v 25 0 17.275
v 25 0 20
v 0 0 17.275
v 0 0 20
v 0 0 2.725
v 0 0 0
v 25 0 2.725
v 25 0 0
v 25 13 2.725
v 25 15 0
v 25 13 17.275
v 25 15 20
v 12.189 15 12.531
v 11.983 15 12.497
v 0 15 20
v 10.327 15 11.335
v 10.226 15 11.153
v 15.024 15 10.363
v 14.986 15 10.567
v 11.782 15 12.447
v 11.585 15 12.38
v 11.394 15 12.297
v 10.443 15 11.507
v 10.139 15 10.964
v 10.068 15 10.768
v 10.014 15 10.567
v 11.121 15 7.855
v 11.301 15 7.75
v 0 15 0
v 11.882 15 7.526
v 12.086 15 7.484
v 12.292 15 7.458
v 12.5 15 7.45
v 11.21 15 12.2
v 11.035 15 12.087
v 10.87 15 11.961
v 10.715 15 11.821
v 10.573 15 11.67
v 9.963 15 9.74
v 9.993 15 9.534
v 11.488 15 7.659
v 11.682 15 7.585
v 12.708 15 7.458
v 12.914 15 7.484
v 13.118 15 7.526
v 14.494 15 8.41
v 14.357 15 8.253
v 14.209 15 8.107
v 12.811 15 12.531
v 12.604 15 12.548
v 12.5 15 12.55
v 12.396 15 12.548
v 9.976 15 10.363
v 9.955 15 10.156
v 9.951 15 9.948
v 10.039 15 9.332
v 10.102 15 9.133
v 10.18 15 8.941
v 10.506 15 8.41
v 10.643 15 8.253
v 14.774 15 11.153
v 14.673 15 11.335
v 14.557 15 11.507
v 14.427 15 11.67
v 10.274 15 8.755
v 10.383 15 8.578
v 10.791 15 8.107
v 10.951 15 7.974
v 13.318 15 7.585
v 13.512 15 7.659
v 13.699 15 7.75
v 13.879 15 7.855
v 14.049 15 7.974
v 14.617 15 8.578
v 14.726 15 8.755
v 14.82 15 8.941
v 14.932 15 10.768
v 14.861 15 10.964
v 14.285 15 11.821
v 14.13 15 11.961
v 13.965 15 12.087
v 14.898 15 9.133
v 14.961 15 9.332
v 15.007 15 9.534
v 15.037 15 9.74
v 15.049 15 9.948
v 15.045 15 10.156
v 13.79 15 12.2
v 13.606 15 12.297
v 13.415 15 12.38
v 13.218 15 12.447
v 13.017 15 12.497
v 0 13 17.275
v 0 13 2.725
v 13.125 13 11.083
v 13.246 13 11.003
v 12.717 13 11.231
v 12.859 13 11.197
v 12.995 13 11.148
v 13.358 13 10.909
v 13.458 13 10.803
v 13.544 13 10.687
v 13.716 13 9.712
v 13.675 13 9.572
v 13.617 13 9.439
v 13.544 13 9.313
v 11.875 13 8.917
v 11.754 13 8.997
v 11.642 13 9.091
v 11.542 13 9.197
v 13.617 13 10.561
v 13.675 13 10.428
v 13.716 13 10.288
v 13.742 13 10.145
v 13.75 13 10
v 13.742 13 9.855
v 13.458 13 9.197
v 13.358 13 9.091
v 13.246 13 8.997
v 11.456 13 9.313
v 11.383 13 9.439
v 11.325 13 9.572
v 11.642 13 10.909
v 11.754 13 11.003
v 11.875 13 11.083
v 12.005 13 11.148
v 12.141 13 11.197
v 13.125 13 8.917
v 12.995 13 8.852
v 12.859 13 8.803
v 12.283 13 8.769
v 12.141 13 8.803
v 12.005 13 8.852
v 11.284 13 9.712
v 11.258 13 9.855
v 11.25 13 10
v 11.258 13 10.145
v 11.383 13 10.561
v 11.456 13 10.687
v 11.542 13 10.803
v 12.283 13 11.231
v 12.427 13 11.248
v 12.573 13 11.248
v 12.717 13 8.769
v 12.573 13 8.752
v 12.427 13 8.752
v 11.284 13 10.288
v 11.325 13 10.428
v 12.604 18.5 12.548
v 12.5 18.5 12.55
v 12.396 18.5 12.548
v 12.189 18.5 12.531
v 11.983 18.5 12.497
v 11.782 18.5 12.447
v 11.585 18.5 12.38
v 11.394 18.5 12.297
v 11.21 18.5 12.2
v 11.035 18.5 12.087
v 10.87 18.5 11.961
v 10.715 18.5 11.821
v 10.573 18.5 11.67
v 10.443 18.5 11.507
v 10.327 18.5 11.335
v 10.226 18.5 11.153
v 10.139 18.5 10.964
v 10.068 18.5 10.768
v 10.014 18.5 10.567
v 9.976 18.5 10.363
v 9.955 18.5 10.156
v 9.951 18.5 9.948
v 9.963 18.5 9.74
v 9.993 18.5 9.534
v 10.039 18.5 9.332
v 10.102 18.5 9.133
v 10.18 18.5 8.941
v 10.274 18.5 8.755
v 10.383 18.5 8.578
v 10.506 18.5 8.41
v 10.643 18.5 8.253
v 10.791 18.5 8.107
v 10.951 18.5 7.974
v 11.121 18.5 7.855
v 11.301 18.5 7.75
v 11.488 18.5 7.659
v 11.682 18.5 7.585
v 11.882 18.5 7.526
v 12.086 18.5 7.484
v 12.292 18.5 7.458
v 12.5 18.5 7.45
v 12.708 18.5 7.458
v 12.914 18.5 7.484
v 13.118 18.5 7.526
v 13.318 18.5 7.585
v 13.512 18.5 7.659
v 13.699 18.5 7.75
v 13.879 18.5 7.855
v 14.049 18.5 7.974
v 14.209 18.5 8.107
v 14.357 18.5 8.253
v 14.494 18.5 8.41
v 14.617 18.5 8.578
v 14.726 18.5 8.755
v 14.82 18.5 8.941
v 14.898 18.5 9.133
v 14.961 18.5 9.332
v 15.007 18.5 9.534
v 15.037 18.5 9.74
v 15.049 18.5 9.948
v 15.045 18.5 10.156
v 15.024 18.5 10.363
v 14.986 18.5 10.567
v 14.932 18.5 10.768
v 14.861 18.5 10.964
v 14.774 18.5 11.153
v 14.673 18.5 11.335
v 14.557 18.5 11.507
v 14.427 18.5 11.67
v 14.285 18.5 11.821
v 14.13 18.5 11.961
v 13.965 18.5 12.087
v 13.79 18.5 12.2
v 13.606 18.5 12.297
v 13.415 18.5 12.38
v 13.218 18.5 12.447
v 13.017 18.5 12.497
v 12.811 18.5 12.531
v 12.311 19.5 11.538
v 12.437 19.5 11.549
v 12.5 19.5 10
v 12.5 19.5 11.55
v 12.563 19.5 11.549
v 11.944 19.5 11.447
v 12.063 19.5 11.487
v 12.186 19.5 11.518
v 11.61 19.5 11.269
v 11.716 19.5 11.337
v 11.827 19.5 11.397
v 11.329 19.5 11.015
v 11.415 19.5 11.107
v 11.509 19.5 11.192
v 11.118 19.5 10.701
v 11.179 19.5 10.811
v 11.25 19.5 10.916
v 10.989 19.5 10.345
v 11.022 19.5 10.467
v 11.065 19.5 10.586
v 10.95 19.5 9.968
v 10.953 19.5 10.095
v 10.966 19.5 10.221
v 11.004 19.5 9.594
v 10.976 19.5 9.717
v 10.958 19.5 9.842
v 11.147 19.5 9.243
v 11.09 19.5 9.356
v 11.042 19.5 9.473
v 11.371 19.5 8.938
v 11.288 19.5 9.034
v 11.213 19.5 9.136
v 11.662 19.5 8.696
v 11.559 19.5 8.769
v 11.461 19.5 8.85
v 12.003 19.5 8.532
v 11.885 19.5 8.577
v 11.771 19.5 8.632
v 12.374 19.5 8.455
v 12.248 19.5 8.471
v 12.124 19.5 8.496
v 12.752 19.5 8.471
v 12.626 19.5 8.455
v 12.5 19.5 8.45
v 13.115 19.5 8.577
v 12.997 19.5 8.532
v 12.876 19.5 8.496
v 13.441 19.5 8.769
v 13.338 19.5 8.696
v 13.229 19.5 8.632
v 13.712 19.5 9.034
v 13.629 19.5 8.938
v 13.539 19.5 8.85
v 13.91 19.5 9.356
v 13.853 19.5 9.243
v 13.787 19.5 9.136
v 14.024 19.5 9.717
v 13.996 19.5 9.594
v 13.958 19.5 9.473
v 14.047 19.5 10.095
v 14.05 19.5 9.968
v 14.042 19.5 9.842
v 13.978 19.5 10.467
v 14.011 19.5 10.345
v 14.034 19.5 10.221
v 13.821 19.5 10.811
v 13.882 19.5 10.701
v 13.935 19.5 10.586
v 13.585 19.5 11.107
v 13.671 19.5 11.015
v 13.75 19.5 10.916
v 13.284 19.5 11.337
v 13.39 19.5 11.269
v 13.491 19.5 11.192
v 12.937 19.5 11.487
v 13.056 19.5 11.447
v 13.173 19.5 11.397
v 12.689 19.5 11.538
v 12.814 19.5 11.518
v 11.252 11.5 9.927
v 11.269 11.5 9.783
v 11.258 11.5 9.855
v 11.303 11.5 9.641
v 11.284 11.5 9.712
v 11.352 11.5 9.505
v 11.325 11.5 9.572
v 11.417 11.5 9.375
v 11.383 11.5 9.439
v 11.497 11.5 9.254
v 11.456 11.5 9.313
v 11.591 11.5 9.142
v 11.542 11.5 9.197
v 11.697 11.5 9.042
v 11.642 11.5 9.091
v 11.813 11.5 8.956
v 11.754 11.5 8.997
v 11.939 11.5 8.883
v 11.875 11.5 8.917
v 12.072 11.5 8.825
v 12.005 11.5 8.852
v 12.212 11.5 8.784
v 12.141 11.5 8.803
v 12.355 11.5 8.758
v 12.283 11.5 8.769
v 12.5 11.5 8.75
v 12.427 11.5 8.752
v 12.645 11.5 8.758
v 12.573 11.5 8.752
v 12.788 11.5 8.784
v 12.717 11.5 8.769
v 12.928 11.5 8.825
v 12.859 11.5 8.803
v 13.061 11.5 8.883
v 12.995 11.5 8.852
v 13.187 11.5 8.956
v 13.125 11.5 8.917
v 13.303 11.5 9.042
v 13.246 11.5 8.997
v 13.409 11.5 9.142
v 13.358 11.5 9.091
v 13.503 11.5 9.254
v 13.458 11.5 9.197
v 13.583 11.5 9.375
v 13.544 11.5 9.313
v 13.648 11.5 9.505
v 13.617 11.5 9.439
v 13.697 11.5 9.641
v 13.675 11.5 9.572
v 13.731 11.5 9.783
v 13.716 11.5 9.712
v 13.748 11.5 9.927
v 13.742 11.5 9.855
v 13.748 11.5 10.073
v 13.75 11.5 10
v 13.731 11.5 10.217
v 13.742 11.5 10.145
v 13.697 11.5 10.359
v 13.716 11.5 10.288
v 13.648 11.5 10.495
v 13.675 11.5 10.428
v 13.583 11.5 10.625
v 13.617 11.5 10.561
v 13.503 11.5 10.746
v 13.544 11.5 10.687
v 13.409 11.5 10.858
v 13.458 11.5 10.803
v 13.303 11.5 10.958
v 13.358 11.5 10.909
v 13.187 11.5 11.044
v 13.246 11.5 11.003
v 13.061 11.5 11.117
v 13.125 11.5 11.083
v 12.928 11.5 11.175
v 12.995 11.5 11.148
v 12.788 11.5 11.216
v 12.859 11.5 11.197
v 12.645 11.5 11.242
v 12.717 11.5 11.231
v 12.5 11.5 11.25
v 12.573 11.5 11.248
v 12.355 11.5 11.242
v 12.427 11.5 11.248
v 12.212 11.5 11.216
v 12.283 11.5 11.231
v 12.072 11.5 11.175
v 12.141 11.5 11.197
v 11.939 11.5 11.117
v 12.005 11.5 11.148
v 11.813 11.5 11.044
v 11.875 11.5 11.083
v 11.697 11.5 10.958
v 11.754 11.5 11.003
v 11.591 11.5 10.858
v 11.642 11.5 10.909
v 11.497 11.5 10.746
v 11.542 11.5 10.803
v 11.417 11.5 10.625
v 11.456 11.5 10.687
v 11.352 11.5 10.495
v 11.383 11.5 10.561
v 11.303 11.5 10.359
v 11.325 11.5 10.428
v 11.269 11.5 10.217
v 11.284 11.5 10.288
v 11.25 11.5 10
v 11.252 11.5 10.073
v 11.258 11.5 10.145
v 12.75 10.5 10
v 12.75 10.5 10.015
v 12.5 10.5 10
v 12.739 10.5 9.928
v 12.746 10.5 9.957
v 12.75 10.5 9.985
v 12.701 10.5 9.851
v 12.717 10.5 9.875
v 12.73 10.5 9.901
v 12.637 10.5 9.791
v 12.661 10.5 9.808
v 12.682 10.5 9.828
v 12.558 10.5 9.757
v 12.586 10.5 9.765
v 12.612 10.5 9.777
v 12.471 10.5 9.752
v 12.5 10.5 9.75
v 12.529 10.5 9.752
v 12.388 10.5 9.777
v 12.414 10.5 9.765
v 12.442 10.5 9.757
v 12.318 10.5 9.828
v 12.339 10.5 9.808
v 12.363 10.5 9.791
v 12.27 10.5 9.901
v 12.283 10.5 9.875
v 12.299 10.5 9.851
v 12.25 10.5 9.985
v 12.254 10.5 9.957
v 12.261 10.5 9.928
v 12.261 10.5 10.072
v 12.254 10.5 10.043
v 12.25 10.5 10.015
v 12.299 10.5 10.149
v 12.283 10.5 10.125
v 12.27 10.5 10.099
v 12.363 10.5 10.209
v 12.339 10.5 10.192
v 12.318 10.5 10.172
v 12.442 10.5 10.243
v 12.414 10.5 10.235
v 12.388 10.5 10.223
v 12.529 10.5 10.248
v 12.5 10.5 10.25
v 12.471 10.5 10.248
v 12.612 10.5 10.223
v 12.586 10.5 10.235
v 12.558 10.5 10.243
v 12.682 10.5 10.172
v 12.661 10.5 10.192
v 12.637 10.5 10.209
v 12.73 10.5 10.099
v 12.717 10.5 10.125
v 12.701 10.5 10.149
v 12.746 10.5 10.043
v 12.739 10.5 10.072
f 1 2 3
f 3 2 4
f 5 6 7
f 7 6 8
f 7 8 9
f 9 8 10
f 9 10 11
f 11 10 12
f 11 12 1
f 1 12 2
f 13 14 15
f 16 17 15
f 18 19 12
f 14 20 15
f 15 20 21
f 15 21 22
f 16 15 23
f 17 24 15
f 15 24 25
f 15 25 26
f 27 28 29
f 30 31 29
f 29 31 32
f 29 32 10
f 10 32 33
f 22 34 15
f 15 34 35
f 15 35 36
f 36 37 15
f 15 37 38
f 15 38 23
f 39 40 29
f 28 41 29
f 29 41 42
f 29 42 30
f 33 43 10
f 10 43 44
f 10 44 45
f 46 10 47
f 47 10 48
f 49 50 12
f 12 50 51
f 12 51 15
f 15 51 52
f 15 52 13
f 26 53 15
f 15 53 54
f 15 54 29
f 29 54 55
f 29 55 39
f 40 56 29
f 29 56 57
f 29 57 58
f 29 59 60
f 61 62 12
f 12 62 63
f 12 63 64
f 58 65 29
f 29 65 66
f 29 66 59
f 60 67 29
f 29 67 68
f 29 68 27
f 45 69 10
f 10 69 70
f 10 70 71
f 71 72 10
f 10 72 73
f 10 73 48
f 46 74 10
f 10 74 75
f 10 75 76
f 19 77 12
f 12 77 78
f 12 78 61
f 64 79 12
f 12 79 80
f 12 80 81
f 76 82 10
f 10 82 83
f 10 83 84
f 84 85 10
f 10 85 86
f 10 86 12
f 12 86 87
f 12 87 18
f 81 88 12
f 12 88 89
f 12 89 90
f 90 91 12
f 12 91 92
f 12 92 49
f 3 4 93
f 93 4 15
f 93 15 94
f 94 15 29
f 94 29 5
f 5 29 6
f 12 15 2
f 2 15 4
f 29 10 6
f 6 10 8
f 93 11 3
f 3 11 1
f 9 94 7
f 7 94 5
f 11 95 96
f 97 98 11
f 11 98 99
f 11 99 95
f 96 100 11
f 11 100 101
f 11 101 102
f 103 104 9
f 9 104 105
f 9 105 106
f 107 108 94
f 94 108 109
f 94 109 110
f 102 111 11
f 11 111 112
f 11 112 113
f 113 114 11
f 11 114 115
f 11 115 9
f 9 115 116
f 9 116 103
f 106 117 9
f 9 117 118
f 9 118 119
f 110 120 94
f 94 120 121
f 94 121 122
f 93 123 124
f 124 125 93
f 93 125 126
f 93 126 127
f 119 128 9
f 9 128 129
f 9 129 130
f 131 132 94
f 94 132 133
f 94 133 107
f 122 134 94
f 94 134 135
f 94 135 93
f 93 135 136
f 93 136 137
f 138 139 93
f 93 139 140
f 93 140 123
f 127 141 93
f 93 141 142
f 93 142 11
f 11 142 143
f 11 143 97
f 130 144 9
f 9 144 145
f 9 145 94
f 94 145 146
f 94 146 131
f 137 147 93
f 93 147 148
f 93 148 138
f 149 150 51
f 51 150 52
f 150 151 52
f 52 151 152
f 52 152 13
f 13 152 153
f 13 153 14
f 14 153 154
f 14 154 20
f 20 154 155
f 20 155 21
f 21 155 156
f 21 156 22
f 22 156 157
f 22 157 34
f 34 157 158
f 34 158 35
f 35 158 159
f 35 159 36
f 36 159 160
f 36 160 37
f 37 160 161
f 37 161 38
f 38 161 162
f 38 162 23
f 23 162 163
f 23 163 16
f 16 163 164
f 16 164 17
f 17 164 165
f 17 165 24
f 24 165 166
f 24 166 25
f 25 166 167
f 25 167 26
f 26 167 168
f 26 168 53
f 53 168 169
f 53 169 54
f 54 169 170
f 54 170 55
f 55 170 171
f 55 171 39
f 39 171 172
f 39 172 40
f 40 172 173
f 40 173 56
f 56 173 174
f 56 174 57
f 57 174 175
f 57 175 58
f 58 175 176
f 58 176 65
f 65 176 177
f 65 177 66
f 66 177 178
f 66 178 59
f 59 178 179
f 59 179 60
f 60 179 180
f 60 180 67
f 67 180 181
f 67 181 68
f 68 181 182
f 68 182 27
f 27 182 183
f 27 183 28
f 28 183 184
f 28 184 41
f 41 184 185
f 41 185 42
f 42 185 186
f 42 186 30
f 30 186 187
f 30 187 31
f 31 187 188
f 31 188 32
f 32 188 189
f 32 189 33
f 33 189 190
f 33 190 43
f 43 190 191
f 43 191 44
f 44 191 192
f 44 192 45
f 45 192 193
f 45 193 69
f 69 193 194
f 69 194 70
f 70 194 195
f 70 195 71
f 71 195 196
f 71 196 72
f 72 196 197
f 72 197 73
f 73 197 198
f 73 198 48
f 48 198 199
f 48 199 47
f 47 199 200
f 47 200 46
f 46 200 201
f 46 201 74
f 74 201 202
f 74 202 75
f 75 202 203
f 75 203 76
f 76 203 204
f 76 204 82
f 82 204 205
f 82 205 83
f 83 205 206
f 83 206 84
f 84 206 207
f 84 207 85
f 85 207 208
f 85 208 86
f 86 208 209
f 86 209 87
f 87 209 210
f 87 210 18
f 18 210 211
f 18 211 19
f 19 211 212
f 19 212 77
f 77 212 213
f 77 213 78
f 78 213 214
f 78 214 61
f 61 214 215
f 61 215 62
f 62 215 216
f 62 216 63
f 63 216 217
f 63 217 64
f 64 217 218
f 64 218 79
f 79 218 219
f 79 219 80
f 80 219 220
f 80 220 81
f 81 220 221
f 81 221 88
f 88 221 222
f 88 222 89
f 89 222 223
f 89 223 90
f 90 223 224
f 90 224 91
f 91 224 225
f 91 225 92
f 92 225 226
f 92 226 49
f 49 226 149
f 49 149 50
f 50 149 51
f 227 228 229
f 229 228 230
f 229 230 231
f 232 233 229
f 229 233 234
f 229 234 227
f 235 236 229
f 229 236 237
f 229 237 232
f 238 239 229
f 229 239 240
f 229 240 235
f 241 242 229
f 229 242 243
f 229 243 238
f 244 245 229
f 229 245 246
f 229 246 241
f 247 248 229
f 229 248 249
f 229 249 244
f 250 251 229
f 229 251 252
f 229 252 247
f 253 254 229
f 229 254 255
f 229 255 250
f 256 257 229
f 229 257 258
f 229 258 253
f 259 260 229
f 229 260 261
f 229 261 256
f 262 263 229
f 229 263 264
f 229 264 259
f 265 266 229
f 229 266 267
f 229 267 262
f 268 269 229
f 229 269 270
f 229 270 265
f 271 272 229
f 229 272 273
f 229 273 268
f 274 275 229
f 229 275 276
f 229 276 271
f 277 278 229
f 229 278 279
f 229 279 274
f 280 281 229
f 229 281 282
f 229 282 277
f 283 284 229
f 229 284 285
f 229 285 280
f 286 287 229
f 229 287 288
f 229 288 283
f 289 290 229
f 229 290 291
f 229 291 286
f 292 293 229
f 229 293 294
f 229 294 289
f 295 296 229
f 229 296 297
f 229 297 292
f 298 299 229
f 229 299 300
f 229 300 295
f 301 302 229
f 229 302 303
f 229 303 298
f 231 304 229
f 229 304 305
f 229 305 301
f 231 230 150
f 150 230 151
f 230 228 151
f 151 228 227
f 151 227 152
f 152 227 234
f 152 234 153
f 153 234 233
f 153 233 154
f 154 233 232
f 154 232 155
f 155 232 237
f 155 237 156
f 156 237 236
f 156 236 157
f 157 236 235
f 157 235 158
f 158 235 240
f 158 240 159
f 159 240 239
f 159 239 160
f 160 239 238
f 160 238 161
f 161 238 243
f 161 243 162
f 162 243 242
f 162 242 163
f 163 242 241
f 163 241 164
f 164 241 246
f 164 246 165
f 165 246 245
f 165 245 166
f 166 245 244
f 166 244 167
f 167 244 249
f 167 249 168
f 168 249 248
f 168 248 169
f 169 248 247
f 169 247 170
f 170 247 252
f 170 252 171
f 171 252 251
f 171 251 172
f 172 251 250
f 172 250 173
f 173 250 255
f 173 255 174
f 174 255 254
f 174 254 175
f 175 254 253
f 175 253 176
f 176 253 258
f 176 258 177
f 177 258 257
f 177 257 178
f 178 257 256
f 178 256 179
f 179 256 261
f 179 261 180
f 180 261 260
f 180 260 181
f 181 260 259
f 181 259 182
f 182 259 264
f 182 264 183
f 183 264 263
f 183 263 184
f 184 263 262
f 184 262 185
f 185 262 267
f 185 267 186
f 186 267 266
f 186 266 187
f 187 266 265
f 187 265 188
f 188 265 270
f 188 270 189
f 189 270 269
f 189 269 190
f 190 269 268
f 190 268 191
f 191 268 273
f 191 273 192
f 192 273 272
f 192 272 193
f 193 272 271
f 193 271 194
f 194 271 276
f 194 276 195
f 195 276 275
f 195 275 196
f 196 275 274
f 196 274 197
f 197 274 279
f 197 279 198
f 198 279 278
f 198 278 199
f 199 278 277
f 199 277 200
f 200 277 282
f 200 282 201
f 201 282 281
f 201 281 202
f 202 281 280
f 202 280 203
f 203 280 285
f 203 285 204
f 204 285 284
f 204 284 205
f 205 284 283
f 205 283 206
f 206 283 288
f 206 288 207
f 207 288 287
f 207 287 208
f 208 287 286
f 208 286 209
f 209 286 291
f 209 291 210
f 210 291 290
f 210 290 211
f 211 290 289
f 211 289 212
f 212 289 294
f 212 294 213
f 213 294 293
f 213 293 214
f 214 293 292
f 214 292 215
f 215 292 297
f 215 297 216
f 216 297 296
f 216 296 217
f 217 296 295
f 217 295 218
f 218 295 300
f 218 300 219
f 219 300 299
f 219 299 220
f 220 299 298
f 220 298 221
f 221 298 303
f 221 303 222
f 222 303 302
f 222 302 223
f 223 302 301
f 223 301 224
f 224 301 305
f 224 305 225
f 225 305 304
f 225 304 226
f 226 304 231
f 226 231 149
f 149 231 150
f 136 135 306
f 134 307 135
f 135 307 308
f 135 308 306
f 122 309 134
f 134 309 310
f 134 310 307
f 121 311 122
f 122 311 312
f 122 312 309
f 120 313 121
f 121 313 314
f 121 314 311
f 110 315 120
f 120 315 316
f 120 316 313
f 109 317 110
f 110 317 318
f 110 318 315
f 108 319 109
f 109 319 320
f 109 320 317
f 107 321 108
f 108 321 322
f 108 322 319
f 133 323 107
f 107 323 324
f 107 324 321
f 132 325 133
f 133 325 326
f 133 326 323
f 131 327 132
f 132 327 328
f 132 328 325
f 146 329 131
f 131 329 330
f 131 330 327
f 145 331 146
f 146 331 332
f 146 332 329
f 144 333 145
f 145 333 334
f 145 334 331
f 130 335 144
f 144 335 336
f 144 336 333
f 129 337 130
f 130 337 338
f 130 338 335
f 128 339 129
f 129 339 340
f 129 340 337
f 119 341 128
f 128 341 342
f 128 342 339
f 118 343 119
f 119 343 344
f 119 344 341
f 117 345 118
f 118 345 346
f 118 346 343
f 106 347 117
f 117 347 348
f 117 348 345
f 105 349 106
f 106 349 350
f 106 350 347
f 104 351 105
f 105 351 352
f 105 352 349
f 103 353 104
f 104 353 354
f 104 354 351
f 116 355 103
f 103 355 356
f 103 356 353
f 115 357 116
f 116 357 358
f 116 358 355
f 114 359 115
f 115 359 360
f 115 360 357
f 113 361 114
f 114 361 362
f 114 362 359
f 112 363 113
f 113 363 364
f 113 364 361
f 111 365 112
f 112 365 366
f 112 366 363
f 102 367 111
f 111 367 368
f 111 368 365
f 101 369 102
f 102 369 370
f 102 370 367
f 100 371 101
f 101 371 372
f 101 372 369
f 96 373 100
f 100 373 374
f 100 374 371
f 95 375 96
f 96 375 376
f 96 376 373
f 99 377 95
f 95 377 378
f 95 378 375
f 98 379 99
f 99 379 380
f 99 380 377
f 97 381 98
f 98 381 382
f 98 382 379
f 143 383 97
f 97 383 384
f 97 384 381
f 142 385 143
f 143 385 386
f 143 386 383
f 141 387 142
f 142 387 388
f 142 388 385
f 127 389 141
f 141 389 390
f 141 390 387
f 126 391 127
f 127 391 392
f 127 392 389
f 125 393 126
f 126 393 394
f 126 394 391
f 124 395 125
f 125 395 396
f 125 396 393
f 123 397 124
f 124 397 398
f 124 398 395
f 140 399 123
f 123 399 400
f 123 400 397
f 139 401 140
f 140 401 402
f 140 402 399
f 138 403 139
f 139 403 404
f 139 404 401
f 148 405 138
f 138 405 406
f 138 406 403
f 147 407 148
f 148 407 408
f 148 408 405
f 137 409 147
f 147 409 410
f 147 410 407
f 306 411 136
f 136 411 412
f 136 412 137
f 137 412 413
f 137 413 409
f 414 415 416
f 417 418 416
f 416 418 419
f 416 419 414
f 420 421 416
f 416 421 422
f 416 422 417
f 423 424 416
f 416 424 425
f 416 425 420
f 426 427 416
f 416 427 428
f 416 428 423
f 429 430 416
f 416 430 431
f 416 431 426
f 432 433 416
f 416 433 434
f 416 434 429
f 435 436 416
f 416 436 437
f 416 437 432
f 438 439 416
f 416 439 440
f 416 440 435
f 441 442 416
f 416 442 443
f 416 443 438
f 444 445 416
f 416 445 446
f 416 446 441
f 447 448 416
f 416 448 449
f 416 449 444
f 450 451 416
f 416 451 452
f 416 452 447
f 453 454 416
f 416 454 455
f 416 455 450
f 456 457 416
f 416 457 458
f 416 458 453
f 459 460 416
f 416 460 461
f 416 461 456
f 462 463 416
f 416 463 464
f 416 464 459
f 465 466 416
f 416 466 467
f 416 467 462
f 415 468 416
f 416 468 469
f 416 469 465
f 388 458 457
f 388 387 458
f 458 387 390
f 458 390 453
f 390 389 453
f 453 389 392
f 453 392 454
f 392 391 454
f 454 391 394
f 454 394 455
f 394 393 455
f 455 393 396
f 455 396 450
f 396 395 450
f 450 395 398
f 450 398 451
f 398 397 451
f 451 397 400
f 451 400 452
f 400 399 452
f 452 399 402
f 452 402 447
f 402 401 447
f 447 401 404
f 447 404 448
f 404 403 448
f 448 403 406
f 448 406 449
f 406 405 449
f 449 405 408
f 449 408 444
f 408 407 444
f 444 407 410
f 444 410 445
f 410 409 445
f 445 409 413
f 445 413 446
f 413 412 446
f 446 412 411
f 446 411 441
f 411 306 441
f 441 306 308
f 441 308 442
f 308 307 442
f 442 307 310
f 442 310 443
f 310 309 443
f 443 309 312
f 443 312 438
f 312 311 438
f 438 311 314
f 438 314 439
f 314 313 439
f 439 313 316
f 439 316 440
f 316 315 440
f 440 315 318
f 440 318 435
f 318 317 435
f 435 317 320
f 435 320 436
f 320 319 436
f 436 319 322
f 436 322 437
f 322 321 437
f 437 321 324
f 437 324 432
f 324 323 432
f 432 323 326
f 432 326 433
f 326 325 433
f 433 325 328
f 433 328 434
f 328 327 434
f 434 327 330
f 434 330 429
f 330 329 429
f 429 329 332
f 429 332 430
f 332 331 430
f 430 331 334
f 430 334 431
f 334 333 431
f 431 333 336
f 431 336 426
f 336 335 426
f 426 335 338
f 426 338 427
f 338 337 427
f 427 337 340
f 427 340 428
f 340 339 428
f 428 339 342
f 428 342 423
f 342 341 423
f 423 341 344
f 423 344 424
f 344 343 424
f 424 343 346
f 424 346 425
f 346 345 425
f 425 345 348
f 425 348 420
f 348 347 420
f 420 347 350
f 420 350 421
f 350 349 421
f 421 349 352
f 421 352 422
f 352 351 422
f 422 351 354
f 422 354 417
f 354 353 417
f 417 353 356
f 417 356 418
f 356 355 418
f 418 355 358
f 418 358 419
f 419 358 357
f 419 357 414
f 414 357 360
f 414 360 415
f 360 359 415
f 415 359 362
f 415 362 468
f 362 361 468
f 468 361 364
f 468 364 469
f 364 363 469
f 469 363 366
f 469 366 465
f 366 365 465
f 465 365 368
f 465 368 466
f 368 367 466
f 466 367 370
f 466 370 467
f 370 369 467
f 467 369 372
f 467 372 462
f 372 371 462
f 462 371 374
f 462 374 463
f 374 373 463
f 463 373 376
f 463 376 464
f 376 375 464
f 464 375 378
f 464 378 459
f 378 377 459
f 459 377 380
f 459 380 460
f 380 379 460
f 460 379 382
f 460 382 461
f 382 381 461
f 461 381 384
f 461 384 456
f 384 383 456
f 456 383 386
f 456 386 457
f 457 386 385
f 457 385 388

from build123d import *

# Parameters (mm, degrees)
SKETCH1_W           = 25
SKETCH1_H           = 15
BOSS_EXTRUDE1_DEPTH = 20
SKETCH2_W           = 25
SKETCH2_H           = 14.55
CUT_EXTRUDE1_DEPTH  = 13
SKETCH4_R           = 2.55
BOSS_EXTRUDE2_DEPTH = 4.5
CHAMFER1_SIZE       = 1
SKETCH5_R           = 1.25
BOSS_EXTRUDE3_DEPTH = 2.5
CHAMFER2_SIZE       = 1


with BuildPart() as part:
    # Sketch1 → Boss-Extrude1 (new body)
    with BuildSketch(Plane.XY):
        with Locations((12.5, 7.5)):
            Rectangle(SKETCH1_W, SKETCH1_H)
    extrude(amount=BOSS_EXTRUDE1_DEPTH)

    # Sketch2 → Cut-Extrude1 (cut)
    with BuildSketch(Plane.XZ):
        with Locations((12.5, 10)):
            Rectangle(SKETCH2_W, SKETCH2_H)
    extrude(amount=-CUT_EXTRUDE1_DEPTH, mode=Mode.SUBTRACT)

    # Sketch4 → Boss-Extrude2 (add)
    with BuildSketch(Plane(origin=(0, 15, 0), x_dir=(1, 0, 0), z_dir=(0, 1, 0))):
        with Locations(Location((12.5, -10, 0), (0, 0, 270))):
            Circle(SKETCH4_R)
    extrude(amount=BOSS_EXTRUDE2_DEPTH)

    # Chamfer1
    chamfer1_edges = [part.edges().sort_by_distance(p)[0] for p in [
        (12.5, 19.5, 7.45),
    ]]
    chamfer(chamfer1_edges, length=CHAMFER1_SIZE)

    # Sketch5 → Boss-Extrude3 (add)
    with BuildSketch(Plane(origin=(0, 13, 0), x_dir=(-1, 0, 0), z_dir=(0, -1, 0))):
        with Locations(Location((-12.5, -10, 0), (0, 0, 180))):
            Circle(SKETCH5_R)
    extrude(amount=BOSS_EXTRUDE3_DEPTH)

    # Chamfer2
    chamfer2_edges = [part.edges().sort_by_distance(p)[0] for p in [
        (11.25, 10.5, 10),
    ]]
    chamfer(chamfer2_edges, length=CHAMFER2_SIZE)


solid = part.part
